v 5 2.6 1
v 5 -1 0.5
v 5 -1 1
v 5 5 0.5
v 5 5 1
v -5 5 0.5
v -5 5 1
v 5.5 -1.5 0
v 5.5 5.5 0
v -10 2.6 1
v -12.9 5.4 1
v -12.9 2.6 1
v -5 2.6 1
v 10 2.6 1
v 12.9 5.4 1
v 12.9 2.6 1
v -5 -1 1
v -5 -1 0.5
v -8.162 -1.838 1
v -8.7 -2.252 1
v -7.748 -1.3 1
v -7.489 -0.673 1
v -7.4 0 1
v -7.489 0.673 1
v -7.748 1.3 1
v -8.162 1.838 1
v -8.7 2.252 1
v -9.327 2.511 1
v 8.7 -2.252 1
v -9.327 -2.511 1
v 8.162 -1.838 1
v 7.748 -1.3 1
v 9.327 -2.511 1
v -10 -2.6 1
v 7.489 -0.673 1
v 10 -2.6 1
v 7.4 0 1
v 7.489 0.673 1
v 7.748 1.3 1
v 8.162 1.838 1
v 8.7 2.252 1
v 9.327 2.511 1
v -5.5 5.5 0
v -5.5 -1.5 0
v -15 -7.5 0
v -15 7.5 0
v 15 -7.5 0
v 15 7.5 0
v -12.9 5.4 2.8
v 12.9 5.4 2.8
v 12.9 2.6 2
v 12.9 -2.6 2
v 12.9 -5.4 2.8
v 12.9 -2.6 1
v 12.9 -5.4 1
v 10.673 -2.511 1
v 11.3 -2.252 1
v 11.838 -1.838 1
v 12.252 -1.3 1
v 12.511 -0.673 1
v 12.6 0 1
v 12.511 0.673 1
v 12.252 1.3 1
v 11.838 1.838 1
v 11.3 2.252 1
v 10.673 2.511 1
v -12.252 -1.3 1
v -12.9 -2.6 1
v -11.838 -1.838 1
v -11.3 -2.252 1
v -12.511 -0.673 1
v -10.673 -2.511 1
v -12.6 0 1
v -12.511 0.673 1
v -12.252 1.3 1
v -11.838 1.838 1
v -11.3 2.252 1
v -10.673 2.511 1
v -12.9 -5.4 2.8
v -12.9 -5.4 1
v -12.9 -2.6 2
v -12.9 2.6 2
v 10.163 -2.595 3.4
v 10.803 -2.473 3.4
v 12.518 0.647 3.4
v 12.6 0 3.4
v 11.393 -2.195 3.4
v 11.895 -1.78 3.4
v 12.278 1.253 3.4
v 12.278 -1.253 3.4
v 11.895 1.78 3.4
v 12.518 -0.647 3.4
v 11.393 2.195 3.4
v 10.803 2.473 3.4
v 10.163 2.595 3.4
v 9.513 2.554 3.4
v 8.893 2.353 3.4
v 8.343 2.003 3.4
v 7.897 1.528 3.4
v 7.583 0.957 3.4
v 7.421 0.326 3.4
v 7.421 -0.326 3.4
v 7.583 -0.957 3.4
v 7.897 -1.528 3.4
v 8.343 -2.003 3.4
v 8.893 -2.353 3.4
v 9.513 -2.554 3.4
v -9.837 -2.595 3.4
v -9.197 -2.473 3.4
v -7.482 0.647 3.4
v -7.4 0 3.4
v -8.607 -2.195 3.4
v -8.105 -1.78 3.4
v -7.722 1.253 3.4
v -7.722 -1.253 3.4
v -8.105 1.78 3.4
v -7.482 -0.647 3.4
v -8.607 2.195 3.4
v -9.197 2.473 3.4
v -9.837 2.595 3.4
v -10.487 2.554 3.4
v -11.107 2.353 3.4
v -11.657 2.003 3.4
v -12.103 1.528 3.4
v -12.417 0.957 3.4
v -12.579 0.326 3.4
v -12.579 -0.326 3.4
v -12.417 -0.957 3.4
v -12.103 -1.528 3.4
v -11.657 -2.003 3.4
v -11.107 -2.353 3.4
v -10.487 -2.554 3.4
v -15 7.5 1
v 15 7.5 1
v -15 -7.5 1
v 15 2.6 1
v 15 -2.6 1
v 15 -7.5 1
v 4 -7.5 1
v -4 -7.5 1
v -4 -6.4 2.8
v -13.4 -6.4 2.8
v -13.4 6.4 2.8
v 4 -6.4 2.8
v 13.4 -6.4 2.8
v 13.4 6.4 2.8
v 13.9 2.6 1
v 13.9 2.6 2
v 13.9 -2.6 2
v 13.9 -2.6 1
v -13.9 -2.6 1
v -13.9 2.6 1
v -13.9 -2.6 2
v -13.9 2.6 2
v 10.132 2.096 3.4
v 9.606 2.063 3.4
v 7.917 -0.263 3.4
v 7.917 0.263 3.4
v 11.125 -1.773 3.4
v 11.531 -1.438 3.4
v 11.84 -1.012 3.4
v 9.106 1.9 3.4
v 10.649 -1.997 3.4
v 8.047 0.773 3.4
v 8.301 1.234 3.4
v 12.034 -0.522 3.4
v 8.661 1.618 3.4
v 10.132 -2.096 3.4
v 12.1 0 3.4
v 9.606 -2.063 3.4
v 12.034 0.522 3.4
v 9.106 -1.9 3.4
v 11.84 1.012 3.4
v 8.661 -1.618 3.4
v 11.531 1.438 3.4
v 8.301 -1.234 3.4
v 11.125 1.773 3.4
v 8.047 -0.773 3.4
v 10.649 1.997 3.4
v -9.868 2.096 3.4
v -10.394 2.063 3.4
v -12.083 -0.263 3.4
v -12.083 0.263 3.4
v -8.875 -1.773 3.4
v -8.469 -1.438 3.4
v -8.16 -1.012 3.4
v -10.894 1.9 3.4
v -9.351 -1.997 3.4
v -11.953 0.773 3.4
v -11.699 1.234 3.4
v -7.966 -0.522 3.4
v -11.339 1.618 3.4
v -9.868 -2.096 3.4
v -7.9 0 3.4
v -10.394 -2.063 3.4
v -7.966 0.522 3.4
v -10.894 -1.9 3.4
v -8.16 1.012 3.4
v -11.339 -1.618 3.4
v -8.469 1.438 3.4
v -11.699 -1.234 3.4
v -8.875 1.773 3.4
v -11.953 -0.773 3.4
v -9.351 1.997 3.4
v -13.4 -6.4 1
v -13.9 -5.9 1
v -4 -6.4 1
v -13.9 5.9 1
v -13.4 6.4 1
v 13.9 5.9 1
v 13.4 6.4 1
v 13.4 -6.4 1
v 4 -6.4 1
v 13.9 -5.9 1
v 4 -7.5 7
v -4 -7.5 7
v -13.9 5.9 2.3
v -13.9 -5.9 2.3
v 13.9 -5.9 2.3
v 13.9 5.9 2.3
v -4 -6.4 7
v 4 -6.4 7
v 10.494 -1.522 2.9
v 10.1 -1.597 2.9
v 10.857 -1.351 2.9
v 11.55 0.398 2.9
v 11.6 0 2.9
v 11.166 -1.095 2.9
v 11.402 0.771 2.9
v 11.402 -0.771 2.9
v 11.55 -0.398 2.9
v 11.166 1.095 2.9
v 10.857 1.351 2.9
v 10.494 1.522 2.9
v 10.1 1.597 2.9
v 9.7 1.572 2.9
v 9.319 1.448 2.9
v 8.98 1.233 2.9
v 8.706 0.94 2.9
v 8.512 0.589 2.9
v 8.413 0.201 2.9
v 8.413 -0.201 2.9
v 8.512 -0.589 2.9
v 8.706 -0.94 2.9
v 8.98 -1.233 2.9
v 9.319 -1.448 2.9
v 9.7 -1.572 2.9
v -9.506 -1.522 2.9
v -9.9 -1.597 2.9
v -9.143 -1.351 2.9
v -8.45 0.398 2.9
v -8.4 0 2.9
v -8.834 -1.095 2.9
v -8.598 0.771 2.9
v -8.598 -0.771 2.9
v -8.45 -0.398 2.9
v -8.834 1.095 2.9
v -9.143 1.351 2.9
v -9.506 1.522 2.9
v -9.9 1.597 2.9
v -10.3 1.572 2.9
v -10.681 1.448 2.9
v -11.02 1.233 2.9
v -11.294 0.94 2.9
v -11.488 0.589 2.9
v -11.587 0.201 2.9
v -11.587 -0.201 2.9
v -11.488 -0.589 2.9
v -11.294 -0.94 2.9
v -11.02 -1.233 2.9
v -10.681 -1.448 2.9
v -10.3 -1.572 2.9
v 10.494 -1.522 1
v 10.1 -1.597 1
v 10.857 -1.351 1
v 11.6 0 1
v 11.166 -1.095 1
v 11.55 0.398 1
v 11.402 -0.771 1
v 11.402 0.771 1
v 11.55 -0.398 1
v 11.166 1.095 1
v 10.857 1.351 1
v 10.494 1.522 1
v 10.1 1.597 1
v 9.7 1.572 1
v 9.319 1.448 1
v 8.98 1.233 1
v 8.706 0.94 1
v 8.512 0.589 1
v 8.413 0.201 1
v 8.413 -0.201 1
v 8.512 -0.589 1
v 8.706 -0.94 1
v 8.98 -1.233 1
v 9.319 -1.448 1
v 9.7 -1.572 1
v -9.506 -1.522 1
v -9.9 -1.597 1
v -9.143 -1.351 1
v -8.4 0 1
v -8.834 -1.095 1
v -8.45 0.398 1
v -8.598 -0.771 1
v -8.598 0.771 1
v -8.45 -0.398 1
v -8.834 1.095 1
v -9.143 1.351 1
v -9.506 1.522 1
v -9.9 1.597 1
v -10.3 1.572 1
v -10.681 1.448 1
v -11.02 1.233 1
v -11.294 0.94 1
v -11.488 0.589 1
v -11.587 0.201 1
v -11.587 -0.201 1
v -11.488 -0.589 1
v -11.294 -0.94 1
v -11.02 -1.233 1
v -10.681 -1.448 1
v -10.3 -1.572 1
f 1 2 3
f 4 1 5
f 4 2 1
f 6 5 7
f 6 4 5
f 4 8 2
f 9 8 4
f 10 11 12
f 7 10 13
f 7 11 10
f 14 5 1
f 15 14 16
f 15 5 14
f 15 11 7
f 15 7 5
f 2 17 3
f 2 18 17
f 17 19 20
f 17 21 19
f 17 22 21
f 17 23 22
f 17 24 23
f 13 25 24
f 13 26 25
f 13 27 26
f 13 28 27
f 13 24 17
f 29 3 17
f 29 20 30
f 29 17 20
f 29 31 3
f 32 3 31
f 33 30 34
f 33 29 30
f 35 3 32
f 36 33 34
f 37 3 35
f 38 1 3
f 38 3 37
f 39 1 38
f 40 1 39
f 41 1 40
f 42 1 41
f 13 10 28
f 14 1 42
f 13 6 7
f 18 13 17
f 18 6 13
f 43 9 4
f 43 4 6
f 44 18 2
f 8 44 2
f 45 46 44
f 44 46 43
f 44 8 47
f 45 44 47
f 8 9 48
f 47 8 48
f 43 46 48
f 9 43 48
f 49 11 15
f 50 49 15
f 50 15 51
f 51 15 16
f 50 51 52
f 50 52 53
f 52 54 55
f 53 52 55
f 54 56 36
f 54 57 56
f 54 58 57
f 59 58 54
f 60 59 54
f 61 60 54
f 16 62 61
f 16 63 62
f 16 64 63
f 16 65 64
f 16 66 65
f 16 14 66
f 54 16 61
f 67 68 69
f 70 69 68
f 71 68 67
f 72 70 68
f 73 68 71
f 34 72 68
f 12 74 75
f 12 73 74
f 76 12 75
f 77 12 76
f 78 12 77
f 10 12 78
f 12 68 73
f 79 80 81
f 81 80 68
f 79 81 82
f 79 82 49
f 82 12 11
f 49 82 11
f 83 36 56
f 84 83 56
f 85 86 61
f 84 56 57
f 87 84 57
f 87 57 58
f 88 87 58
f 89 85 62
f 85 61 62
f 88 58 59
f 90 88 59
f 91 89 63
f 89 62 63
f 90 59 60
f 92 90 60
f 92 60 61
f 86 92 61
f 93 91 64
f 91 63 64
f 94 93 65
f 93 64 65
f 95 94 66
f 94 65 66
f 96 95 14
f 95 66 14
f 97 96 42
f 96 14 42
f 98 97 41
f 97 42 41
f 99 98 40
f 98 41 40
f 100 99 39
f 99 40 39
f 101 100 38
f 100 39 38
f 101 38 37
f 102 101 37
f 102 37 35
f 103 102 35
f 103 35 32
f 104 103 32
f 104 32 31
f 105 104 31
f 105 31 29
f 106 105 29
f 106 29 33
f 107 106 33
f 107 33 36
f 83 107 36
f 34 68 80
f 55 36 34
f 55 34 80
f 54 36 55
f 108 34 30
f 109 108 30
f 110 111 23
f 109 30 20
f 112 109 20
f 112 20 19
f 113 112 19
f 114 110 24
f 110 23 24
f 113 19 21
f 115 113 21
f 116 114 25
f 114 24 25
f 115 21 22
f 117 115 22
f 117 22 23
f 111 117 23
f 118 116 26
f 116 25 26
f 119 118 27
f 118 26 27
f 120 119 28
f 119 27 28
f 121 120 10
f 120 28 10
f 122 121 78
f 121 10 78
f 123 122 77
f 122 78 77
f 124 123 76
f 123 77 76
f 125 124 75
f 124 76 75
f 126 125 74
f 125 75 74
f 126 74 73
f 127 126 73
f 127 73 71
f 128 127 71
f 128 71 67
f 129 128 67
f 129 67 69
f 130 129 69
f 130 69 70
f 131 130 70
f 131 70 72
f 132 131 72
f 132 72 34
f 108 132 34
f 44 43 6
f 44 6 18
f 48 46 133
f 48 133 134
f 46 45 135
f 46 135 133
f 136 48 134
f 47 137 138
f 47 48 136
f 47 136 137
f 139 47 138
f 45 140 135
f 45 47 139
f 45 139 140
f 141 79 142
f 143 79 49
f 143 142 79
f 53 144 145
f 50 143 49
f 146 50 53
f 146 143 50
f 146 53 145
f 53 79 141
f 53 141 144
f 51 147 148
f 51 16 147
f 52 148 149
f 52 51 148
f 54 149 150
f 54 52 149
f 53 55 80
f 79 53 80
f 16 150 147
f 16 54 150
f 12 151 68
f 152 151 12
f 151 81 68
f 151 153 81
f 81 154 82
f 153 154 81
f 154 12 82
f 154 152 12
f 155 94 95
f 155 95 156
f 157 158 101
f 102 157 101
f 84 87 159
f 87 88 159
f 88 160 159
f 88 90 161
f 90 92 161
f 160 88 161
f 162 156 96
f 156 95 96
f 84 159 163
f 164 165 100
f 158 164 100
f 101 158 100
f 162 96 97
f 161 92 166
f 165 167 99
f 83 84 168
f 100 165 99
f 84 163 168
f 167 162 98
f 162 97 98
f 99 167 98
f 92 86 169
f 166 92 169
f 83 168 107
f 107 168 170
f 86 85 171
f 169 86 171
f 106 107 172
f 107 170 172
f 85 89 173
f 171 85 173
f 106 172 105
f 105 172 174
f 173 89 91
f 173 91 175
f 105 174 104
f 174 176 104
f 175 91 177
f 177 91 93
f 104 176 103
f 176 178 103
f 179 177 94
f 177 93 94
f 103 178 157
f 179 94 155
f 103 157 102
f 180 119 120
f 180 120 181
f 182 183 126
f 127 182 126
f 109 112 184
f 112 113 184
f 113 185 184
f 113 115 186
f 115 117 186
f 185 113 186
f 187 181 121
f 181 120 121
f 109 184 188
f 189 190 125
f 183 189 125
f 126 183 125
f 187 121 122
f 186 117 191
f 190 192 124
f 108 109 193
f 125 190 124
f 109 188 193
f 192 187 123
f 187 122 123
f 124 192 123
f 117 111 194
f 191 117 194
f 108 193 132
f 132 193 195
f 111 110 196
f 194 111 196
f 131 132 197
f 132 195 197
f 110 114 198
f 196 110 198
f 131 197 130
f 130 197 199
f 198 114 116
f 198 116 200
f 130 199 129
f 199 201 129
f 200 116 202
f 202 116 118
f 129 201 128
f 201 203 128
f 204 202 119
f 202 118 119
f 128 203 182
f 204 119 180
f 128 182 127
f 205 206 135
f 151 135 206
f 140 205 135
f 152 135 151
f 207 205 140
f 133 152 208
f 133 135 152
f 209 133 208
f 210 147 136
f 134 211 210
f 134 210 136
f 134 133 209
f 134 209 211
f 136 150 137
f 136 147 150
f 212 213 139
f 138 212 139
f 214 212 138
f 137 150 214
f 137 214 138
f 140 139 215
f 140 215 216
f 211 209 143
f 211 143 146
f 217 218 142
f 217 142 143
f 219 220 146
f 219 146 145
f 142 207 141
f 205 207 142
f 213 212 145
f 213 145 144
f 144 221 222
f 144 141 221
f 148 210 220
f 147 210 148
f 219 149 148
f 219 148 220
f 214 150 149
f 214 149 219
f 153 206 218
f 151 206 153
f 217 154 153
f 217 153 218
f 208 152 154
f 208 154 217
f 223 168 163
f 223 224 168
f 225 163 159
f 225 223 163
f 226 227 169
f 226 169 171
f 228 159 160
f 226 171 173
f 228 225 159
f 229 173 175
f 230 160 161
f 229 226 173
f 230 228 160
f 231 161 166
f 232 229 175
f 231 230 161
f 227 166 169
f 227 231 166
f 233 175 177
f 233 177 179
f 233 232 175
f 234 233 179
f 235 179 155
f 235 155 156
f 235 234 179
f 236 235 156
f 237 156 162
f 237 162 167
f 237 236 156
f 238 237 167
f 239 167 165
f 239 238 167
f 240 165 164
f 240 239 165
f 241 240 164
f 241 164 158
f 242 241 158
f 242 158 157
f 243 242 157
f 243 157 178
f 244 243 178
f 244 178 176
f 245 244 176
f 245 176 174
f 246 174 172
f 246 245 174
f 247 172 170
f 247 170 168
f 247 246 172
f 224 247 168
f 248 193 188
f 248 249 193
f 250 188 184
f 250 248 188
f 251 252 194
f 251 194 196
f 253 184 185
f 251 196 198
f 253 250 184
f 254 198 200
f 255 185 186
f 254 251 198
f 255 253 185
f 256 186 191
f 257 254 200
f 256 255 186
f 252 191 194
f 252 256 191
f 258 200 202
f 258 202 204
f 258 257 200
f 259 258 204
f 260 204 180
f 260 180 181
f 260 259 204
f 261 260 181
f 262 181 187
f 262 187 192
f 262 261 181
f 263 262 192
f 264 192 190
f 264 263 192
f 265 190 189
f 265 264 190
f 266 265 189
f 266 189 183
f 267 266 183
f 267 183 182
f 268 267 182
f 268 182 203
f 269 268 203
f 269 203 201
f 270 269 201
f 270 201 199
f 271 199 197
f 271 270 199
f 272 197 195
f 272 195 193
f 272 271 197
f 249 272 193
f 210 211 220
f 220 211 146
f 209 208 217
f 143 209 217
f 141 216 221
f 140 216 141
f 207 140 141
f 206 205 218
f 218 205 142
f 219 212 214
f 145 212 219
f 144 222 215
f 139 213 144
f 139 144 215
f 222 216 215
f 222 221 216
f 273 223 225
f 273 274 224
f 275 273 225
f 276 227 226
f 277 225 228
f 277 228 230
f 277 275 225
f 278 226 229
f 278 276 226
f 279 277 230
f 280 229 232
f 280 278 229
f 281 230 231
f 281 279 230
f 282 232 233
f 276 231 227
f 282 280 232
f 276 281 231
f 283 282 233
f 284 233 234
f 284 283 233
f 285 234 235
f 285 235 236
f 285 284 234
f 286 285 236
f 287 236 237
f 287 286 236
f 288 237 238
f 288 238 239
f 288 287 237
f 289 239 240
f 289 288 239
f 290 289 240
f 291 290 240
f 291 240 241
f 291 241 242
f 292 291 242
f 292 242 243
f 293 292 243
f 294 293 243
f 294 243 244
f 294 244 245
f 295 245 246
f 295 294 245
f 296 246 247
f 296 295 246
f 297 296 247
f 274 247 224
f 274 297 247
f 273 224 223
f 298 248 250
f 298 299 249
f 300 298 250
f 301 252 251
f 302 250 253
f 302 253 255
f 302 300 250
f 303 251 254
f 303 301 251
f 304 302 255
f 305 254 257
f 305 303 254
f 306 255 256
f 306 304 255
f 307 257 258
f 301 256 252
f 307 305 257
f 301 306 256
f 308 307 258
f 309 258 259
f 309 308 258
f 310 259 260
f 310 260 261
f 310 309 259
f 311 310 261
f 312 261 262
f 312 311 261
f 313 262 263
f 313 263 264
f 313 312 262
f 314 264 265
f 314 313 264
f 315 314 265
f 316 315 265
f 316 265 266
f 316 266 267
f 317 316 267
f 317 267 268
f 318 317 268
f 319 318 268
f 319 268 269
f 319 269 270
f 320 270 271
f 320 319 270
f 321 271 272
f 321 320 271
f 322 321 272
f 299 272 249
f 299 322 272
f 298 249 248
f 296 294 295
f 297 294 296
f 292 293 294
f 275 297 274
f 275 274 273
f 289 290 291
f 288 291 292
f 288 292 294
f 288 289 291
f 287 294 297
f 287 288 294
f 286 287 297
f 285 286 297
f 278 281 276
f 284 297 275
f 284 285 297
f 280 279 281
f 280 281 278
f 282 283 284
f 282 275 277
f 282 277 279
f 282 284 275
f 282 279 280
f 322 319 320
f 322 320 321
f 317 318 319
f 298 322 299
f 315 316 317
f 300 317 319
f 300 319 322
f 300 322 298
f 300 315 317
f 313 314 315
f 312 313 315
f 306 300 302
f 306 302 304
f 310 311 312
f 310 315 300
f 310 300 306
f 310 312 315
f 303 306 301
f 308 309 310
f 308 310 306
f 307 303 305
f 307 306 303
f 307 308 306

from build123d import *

# Parameters (mm, degrees)
SKETCH_W        = 30
SKETCH_H        = 15
PAD_DEPTH       = 1
SKETCH001_W     = 27.8
SKETCH001_H     = 12.8
SKETCH001_W_2   = 25.8
SKETCH001_H_2   = 10.8
PAD001_DEPTH    = 1.8
SKETCH002_W     = 8
SKETCH002_H     = 1.1
PAD002_DEPTH    = 6
SKETCH003_W     = 5.2
SKETCH003_H     = 1
POCKET_DEPTH    = 28.901
SKETCH004_R     = 2.6
SKETCH004_R_2   = 1.6
PAD003_DEPTH    = 2.4
SKETCH005_W     = 10
SKETCH005_H     = 6
POCKET001_DEPTH = 5
CHAMFER_SIZE    = 0.5
CHAMFER001_SIZE = 0.5
CHAMFER002_SIZE = 0.5


with BuildPart() as part:
    # Sketch → Pad (new body)
    with BuildSketch(Plane.XY):
        Rectangle(SKETCH_W, SKETCH_H)
    extrude(amount=PAD_DEPTH)

    # Sketch001 → Pad001 (new body)
    with BuildSketch(Plane.XY.offset(1)):
        Rectangle(SKETCH001_W, SKETCH001_H)
        Rectangle(SKETCH001_W_2, SKETCH001_H_2, mode=Mode.SUBTRACT)
    extrude(amount=PAD001_DEPTH)

    # Sketch002 → Pad002 (new body)
    with BuildSketch(Plane.XY.offset(1)):
        with Locations((0, -6.95)):
            Rectangle(SKETCH002_W, SKETCH002_H)
    extrude(amount=PAD002_DEPTH)

    # Sketch003 → Pocket (cut, through all)
    with BuildSketch(Plane(origin=(-13.9, 0, 0), x_dir=(0, -1, 0), z_dir=(-1, 0, 0))):
        with Locations((0, 1.5)):
            Rectangle(SKETCH003_W, SKETCH003_H)
    extrude(amount=-POCKET_DEPTH, mode=Mode.SUBTRACT)

    # Sketch004 → Pad003 (new body)
    with BuildSketch(Plane.XY.offset(1)):
        with Locations((-10, 0)):
            Circle(SKETCH004_R)
        with Locations((-10, 0)):
            Circle(SKETCH004_R_2, mode=Mode.SUBTRACT)
        with Locations((10, 0)):
            Circle(SKETCH004_R)
        with Locations((10, 0)):
            Circle(SKETCH004_R_2, mode=Mode.SUBTRACT)
    extrude(amount=PAD003_DEPTH)

    # Sketch005 → Pocket001 (cut)
    with BuildSketch(Plane(origin=(0, 0, 0), x_dir=(1, 0, 0), z_dir=(0, 0, -1))):
        with Locations((0, -2)):
            Rectangle(SKETCH005_W, SKETCH005_H)
    extrude(amount=-POCKET001_DEPTH, mode=Mode.SUBTRACT)

    # Chamfer
    chamfer_edges = [part.edges().sort_by_distance(p)[0] for p in [
        (-11.6, 0, 3.4),
        (8.4, 0, 3.4),
    ]]
    chamfer(chamfer_edges, length=CHAMFER_SIZE)

    # Chamfer001
    chamfer001_edges = [part.edges().sort_by_distance(p)[0] for p in [
        (-13.9, 6.4, 1.9),
        (-13.9, 0, 2.8),
        (-13.9, -6.4, 1.9),
        (13.9, 6.4, 1.9),
        (13.9, 0, 2.8),
        (13.9, -6.4, 1.9),
    ]]
    chamfer(chamfer001_edges, length=CHAMFER001_SIZE)

    # Chamfer002
    chamfer002_edges = [part.edges().sort_by_distance(p)[0] for p in [
        (-5, 2, 0),
        (0, 5, 0),
        (5, 2, 0),
        (0, -1, 0),
    ]]
    chamfer(chamfer002_edges, length=CHAMFER002_SIZE)


solid = part.part
